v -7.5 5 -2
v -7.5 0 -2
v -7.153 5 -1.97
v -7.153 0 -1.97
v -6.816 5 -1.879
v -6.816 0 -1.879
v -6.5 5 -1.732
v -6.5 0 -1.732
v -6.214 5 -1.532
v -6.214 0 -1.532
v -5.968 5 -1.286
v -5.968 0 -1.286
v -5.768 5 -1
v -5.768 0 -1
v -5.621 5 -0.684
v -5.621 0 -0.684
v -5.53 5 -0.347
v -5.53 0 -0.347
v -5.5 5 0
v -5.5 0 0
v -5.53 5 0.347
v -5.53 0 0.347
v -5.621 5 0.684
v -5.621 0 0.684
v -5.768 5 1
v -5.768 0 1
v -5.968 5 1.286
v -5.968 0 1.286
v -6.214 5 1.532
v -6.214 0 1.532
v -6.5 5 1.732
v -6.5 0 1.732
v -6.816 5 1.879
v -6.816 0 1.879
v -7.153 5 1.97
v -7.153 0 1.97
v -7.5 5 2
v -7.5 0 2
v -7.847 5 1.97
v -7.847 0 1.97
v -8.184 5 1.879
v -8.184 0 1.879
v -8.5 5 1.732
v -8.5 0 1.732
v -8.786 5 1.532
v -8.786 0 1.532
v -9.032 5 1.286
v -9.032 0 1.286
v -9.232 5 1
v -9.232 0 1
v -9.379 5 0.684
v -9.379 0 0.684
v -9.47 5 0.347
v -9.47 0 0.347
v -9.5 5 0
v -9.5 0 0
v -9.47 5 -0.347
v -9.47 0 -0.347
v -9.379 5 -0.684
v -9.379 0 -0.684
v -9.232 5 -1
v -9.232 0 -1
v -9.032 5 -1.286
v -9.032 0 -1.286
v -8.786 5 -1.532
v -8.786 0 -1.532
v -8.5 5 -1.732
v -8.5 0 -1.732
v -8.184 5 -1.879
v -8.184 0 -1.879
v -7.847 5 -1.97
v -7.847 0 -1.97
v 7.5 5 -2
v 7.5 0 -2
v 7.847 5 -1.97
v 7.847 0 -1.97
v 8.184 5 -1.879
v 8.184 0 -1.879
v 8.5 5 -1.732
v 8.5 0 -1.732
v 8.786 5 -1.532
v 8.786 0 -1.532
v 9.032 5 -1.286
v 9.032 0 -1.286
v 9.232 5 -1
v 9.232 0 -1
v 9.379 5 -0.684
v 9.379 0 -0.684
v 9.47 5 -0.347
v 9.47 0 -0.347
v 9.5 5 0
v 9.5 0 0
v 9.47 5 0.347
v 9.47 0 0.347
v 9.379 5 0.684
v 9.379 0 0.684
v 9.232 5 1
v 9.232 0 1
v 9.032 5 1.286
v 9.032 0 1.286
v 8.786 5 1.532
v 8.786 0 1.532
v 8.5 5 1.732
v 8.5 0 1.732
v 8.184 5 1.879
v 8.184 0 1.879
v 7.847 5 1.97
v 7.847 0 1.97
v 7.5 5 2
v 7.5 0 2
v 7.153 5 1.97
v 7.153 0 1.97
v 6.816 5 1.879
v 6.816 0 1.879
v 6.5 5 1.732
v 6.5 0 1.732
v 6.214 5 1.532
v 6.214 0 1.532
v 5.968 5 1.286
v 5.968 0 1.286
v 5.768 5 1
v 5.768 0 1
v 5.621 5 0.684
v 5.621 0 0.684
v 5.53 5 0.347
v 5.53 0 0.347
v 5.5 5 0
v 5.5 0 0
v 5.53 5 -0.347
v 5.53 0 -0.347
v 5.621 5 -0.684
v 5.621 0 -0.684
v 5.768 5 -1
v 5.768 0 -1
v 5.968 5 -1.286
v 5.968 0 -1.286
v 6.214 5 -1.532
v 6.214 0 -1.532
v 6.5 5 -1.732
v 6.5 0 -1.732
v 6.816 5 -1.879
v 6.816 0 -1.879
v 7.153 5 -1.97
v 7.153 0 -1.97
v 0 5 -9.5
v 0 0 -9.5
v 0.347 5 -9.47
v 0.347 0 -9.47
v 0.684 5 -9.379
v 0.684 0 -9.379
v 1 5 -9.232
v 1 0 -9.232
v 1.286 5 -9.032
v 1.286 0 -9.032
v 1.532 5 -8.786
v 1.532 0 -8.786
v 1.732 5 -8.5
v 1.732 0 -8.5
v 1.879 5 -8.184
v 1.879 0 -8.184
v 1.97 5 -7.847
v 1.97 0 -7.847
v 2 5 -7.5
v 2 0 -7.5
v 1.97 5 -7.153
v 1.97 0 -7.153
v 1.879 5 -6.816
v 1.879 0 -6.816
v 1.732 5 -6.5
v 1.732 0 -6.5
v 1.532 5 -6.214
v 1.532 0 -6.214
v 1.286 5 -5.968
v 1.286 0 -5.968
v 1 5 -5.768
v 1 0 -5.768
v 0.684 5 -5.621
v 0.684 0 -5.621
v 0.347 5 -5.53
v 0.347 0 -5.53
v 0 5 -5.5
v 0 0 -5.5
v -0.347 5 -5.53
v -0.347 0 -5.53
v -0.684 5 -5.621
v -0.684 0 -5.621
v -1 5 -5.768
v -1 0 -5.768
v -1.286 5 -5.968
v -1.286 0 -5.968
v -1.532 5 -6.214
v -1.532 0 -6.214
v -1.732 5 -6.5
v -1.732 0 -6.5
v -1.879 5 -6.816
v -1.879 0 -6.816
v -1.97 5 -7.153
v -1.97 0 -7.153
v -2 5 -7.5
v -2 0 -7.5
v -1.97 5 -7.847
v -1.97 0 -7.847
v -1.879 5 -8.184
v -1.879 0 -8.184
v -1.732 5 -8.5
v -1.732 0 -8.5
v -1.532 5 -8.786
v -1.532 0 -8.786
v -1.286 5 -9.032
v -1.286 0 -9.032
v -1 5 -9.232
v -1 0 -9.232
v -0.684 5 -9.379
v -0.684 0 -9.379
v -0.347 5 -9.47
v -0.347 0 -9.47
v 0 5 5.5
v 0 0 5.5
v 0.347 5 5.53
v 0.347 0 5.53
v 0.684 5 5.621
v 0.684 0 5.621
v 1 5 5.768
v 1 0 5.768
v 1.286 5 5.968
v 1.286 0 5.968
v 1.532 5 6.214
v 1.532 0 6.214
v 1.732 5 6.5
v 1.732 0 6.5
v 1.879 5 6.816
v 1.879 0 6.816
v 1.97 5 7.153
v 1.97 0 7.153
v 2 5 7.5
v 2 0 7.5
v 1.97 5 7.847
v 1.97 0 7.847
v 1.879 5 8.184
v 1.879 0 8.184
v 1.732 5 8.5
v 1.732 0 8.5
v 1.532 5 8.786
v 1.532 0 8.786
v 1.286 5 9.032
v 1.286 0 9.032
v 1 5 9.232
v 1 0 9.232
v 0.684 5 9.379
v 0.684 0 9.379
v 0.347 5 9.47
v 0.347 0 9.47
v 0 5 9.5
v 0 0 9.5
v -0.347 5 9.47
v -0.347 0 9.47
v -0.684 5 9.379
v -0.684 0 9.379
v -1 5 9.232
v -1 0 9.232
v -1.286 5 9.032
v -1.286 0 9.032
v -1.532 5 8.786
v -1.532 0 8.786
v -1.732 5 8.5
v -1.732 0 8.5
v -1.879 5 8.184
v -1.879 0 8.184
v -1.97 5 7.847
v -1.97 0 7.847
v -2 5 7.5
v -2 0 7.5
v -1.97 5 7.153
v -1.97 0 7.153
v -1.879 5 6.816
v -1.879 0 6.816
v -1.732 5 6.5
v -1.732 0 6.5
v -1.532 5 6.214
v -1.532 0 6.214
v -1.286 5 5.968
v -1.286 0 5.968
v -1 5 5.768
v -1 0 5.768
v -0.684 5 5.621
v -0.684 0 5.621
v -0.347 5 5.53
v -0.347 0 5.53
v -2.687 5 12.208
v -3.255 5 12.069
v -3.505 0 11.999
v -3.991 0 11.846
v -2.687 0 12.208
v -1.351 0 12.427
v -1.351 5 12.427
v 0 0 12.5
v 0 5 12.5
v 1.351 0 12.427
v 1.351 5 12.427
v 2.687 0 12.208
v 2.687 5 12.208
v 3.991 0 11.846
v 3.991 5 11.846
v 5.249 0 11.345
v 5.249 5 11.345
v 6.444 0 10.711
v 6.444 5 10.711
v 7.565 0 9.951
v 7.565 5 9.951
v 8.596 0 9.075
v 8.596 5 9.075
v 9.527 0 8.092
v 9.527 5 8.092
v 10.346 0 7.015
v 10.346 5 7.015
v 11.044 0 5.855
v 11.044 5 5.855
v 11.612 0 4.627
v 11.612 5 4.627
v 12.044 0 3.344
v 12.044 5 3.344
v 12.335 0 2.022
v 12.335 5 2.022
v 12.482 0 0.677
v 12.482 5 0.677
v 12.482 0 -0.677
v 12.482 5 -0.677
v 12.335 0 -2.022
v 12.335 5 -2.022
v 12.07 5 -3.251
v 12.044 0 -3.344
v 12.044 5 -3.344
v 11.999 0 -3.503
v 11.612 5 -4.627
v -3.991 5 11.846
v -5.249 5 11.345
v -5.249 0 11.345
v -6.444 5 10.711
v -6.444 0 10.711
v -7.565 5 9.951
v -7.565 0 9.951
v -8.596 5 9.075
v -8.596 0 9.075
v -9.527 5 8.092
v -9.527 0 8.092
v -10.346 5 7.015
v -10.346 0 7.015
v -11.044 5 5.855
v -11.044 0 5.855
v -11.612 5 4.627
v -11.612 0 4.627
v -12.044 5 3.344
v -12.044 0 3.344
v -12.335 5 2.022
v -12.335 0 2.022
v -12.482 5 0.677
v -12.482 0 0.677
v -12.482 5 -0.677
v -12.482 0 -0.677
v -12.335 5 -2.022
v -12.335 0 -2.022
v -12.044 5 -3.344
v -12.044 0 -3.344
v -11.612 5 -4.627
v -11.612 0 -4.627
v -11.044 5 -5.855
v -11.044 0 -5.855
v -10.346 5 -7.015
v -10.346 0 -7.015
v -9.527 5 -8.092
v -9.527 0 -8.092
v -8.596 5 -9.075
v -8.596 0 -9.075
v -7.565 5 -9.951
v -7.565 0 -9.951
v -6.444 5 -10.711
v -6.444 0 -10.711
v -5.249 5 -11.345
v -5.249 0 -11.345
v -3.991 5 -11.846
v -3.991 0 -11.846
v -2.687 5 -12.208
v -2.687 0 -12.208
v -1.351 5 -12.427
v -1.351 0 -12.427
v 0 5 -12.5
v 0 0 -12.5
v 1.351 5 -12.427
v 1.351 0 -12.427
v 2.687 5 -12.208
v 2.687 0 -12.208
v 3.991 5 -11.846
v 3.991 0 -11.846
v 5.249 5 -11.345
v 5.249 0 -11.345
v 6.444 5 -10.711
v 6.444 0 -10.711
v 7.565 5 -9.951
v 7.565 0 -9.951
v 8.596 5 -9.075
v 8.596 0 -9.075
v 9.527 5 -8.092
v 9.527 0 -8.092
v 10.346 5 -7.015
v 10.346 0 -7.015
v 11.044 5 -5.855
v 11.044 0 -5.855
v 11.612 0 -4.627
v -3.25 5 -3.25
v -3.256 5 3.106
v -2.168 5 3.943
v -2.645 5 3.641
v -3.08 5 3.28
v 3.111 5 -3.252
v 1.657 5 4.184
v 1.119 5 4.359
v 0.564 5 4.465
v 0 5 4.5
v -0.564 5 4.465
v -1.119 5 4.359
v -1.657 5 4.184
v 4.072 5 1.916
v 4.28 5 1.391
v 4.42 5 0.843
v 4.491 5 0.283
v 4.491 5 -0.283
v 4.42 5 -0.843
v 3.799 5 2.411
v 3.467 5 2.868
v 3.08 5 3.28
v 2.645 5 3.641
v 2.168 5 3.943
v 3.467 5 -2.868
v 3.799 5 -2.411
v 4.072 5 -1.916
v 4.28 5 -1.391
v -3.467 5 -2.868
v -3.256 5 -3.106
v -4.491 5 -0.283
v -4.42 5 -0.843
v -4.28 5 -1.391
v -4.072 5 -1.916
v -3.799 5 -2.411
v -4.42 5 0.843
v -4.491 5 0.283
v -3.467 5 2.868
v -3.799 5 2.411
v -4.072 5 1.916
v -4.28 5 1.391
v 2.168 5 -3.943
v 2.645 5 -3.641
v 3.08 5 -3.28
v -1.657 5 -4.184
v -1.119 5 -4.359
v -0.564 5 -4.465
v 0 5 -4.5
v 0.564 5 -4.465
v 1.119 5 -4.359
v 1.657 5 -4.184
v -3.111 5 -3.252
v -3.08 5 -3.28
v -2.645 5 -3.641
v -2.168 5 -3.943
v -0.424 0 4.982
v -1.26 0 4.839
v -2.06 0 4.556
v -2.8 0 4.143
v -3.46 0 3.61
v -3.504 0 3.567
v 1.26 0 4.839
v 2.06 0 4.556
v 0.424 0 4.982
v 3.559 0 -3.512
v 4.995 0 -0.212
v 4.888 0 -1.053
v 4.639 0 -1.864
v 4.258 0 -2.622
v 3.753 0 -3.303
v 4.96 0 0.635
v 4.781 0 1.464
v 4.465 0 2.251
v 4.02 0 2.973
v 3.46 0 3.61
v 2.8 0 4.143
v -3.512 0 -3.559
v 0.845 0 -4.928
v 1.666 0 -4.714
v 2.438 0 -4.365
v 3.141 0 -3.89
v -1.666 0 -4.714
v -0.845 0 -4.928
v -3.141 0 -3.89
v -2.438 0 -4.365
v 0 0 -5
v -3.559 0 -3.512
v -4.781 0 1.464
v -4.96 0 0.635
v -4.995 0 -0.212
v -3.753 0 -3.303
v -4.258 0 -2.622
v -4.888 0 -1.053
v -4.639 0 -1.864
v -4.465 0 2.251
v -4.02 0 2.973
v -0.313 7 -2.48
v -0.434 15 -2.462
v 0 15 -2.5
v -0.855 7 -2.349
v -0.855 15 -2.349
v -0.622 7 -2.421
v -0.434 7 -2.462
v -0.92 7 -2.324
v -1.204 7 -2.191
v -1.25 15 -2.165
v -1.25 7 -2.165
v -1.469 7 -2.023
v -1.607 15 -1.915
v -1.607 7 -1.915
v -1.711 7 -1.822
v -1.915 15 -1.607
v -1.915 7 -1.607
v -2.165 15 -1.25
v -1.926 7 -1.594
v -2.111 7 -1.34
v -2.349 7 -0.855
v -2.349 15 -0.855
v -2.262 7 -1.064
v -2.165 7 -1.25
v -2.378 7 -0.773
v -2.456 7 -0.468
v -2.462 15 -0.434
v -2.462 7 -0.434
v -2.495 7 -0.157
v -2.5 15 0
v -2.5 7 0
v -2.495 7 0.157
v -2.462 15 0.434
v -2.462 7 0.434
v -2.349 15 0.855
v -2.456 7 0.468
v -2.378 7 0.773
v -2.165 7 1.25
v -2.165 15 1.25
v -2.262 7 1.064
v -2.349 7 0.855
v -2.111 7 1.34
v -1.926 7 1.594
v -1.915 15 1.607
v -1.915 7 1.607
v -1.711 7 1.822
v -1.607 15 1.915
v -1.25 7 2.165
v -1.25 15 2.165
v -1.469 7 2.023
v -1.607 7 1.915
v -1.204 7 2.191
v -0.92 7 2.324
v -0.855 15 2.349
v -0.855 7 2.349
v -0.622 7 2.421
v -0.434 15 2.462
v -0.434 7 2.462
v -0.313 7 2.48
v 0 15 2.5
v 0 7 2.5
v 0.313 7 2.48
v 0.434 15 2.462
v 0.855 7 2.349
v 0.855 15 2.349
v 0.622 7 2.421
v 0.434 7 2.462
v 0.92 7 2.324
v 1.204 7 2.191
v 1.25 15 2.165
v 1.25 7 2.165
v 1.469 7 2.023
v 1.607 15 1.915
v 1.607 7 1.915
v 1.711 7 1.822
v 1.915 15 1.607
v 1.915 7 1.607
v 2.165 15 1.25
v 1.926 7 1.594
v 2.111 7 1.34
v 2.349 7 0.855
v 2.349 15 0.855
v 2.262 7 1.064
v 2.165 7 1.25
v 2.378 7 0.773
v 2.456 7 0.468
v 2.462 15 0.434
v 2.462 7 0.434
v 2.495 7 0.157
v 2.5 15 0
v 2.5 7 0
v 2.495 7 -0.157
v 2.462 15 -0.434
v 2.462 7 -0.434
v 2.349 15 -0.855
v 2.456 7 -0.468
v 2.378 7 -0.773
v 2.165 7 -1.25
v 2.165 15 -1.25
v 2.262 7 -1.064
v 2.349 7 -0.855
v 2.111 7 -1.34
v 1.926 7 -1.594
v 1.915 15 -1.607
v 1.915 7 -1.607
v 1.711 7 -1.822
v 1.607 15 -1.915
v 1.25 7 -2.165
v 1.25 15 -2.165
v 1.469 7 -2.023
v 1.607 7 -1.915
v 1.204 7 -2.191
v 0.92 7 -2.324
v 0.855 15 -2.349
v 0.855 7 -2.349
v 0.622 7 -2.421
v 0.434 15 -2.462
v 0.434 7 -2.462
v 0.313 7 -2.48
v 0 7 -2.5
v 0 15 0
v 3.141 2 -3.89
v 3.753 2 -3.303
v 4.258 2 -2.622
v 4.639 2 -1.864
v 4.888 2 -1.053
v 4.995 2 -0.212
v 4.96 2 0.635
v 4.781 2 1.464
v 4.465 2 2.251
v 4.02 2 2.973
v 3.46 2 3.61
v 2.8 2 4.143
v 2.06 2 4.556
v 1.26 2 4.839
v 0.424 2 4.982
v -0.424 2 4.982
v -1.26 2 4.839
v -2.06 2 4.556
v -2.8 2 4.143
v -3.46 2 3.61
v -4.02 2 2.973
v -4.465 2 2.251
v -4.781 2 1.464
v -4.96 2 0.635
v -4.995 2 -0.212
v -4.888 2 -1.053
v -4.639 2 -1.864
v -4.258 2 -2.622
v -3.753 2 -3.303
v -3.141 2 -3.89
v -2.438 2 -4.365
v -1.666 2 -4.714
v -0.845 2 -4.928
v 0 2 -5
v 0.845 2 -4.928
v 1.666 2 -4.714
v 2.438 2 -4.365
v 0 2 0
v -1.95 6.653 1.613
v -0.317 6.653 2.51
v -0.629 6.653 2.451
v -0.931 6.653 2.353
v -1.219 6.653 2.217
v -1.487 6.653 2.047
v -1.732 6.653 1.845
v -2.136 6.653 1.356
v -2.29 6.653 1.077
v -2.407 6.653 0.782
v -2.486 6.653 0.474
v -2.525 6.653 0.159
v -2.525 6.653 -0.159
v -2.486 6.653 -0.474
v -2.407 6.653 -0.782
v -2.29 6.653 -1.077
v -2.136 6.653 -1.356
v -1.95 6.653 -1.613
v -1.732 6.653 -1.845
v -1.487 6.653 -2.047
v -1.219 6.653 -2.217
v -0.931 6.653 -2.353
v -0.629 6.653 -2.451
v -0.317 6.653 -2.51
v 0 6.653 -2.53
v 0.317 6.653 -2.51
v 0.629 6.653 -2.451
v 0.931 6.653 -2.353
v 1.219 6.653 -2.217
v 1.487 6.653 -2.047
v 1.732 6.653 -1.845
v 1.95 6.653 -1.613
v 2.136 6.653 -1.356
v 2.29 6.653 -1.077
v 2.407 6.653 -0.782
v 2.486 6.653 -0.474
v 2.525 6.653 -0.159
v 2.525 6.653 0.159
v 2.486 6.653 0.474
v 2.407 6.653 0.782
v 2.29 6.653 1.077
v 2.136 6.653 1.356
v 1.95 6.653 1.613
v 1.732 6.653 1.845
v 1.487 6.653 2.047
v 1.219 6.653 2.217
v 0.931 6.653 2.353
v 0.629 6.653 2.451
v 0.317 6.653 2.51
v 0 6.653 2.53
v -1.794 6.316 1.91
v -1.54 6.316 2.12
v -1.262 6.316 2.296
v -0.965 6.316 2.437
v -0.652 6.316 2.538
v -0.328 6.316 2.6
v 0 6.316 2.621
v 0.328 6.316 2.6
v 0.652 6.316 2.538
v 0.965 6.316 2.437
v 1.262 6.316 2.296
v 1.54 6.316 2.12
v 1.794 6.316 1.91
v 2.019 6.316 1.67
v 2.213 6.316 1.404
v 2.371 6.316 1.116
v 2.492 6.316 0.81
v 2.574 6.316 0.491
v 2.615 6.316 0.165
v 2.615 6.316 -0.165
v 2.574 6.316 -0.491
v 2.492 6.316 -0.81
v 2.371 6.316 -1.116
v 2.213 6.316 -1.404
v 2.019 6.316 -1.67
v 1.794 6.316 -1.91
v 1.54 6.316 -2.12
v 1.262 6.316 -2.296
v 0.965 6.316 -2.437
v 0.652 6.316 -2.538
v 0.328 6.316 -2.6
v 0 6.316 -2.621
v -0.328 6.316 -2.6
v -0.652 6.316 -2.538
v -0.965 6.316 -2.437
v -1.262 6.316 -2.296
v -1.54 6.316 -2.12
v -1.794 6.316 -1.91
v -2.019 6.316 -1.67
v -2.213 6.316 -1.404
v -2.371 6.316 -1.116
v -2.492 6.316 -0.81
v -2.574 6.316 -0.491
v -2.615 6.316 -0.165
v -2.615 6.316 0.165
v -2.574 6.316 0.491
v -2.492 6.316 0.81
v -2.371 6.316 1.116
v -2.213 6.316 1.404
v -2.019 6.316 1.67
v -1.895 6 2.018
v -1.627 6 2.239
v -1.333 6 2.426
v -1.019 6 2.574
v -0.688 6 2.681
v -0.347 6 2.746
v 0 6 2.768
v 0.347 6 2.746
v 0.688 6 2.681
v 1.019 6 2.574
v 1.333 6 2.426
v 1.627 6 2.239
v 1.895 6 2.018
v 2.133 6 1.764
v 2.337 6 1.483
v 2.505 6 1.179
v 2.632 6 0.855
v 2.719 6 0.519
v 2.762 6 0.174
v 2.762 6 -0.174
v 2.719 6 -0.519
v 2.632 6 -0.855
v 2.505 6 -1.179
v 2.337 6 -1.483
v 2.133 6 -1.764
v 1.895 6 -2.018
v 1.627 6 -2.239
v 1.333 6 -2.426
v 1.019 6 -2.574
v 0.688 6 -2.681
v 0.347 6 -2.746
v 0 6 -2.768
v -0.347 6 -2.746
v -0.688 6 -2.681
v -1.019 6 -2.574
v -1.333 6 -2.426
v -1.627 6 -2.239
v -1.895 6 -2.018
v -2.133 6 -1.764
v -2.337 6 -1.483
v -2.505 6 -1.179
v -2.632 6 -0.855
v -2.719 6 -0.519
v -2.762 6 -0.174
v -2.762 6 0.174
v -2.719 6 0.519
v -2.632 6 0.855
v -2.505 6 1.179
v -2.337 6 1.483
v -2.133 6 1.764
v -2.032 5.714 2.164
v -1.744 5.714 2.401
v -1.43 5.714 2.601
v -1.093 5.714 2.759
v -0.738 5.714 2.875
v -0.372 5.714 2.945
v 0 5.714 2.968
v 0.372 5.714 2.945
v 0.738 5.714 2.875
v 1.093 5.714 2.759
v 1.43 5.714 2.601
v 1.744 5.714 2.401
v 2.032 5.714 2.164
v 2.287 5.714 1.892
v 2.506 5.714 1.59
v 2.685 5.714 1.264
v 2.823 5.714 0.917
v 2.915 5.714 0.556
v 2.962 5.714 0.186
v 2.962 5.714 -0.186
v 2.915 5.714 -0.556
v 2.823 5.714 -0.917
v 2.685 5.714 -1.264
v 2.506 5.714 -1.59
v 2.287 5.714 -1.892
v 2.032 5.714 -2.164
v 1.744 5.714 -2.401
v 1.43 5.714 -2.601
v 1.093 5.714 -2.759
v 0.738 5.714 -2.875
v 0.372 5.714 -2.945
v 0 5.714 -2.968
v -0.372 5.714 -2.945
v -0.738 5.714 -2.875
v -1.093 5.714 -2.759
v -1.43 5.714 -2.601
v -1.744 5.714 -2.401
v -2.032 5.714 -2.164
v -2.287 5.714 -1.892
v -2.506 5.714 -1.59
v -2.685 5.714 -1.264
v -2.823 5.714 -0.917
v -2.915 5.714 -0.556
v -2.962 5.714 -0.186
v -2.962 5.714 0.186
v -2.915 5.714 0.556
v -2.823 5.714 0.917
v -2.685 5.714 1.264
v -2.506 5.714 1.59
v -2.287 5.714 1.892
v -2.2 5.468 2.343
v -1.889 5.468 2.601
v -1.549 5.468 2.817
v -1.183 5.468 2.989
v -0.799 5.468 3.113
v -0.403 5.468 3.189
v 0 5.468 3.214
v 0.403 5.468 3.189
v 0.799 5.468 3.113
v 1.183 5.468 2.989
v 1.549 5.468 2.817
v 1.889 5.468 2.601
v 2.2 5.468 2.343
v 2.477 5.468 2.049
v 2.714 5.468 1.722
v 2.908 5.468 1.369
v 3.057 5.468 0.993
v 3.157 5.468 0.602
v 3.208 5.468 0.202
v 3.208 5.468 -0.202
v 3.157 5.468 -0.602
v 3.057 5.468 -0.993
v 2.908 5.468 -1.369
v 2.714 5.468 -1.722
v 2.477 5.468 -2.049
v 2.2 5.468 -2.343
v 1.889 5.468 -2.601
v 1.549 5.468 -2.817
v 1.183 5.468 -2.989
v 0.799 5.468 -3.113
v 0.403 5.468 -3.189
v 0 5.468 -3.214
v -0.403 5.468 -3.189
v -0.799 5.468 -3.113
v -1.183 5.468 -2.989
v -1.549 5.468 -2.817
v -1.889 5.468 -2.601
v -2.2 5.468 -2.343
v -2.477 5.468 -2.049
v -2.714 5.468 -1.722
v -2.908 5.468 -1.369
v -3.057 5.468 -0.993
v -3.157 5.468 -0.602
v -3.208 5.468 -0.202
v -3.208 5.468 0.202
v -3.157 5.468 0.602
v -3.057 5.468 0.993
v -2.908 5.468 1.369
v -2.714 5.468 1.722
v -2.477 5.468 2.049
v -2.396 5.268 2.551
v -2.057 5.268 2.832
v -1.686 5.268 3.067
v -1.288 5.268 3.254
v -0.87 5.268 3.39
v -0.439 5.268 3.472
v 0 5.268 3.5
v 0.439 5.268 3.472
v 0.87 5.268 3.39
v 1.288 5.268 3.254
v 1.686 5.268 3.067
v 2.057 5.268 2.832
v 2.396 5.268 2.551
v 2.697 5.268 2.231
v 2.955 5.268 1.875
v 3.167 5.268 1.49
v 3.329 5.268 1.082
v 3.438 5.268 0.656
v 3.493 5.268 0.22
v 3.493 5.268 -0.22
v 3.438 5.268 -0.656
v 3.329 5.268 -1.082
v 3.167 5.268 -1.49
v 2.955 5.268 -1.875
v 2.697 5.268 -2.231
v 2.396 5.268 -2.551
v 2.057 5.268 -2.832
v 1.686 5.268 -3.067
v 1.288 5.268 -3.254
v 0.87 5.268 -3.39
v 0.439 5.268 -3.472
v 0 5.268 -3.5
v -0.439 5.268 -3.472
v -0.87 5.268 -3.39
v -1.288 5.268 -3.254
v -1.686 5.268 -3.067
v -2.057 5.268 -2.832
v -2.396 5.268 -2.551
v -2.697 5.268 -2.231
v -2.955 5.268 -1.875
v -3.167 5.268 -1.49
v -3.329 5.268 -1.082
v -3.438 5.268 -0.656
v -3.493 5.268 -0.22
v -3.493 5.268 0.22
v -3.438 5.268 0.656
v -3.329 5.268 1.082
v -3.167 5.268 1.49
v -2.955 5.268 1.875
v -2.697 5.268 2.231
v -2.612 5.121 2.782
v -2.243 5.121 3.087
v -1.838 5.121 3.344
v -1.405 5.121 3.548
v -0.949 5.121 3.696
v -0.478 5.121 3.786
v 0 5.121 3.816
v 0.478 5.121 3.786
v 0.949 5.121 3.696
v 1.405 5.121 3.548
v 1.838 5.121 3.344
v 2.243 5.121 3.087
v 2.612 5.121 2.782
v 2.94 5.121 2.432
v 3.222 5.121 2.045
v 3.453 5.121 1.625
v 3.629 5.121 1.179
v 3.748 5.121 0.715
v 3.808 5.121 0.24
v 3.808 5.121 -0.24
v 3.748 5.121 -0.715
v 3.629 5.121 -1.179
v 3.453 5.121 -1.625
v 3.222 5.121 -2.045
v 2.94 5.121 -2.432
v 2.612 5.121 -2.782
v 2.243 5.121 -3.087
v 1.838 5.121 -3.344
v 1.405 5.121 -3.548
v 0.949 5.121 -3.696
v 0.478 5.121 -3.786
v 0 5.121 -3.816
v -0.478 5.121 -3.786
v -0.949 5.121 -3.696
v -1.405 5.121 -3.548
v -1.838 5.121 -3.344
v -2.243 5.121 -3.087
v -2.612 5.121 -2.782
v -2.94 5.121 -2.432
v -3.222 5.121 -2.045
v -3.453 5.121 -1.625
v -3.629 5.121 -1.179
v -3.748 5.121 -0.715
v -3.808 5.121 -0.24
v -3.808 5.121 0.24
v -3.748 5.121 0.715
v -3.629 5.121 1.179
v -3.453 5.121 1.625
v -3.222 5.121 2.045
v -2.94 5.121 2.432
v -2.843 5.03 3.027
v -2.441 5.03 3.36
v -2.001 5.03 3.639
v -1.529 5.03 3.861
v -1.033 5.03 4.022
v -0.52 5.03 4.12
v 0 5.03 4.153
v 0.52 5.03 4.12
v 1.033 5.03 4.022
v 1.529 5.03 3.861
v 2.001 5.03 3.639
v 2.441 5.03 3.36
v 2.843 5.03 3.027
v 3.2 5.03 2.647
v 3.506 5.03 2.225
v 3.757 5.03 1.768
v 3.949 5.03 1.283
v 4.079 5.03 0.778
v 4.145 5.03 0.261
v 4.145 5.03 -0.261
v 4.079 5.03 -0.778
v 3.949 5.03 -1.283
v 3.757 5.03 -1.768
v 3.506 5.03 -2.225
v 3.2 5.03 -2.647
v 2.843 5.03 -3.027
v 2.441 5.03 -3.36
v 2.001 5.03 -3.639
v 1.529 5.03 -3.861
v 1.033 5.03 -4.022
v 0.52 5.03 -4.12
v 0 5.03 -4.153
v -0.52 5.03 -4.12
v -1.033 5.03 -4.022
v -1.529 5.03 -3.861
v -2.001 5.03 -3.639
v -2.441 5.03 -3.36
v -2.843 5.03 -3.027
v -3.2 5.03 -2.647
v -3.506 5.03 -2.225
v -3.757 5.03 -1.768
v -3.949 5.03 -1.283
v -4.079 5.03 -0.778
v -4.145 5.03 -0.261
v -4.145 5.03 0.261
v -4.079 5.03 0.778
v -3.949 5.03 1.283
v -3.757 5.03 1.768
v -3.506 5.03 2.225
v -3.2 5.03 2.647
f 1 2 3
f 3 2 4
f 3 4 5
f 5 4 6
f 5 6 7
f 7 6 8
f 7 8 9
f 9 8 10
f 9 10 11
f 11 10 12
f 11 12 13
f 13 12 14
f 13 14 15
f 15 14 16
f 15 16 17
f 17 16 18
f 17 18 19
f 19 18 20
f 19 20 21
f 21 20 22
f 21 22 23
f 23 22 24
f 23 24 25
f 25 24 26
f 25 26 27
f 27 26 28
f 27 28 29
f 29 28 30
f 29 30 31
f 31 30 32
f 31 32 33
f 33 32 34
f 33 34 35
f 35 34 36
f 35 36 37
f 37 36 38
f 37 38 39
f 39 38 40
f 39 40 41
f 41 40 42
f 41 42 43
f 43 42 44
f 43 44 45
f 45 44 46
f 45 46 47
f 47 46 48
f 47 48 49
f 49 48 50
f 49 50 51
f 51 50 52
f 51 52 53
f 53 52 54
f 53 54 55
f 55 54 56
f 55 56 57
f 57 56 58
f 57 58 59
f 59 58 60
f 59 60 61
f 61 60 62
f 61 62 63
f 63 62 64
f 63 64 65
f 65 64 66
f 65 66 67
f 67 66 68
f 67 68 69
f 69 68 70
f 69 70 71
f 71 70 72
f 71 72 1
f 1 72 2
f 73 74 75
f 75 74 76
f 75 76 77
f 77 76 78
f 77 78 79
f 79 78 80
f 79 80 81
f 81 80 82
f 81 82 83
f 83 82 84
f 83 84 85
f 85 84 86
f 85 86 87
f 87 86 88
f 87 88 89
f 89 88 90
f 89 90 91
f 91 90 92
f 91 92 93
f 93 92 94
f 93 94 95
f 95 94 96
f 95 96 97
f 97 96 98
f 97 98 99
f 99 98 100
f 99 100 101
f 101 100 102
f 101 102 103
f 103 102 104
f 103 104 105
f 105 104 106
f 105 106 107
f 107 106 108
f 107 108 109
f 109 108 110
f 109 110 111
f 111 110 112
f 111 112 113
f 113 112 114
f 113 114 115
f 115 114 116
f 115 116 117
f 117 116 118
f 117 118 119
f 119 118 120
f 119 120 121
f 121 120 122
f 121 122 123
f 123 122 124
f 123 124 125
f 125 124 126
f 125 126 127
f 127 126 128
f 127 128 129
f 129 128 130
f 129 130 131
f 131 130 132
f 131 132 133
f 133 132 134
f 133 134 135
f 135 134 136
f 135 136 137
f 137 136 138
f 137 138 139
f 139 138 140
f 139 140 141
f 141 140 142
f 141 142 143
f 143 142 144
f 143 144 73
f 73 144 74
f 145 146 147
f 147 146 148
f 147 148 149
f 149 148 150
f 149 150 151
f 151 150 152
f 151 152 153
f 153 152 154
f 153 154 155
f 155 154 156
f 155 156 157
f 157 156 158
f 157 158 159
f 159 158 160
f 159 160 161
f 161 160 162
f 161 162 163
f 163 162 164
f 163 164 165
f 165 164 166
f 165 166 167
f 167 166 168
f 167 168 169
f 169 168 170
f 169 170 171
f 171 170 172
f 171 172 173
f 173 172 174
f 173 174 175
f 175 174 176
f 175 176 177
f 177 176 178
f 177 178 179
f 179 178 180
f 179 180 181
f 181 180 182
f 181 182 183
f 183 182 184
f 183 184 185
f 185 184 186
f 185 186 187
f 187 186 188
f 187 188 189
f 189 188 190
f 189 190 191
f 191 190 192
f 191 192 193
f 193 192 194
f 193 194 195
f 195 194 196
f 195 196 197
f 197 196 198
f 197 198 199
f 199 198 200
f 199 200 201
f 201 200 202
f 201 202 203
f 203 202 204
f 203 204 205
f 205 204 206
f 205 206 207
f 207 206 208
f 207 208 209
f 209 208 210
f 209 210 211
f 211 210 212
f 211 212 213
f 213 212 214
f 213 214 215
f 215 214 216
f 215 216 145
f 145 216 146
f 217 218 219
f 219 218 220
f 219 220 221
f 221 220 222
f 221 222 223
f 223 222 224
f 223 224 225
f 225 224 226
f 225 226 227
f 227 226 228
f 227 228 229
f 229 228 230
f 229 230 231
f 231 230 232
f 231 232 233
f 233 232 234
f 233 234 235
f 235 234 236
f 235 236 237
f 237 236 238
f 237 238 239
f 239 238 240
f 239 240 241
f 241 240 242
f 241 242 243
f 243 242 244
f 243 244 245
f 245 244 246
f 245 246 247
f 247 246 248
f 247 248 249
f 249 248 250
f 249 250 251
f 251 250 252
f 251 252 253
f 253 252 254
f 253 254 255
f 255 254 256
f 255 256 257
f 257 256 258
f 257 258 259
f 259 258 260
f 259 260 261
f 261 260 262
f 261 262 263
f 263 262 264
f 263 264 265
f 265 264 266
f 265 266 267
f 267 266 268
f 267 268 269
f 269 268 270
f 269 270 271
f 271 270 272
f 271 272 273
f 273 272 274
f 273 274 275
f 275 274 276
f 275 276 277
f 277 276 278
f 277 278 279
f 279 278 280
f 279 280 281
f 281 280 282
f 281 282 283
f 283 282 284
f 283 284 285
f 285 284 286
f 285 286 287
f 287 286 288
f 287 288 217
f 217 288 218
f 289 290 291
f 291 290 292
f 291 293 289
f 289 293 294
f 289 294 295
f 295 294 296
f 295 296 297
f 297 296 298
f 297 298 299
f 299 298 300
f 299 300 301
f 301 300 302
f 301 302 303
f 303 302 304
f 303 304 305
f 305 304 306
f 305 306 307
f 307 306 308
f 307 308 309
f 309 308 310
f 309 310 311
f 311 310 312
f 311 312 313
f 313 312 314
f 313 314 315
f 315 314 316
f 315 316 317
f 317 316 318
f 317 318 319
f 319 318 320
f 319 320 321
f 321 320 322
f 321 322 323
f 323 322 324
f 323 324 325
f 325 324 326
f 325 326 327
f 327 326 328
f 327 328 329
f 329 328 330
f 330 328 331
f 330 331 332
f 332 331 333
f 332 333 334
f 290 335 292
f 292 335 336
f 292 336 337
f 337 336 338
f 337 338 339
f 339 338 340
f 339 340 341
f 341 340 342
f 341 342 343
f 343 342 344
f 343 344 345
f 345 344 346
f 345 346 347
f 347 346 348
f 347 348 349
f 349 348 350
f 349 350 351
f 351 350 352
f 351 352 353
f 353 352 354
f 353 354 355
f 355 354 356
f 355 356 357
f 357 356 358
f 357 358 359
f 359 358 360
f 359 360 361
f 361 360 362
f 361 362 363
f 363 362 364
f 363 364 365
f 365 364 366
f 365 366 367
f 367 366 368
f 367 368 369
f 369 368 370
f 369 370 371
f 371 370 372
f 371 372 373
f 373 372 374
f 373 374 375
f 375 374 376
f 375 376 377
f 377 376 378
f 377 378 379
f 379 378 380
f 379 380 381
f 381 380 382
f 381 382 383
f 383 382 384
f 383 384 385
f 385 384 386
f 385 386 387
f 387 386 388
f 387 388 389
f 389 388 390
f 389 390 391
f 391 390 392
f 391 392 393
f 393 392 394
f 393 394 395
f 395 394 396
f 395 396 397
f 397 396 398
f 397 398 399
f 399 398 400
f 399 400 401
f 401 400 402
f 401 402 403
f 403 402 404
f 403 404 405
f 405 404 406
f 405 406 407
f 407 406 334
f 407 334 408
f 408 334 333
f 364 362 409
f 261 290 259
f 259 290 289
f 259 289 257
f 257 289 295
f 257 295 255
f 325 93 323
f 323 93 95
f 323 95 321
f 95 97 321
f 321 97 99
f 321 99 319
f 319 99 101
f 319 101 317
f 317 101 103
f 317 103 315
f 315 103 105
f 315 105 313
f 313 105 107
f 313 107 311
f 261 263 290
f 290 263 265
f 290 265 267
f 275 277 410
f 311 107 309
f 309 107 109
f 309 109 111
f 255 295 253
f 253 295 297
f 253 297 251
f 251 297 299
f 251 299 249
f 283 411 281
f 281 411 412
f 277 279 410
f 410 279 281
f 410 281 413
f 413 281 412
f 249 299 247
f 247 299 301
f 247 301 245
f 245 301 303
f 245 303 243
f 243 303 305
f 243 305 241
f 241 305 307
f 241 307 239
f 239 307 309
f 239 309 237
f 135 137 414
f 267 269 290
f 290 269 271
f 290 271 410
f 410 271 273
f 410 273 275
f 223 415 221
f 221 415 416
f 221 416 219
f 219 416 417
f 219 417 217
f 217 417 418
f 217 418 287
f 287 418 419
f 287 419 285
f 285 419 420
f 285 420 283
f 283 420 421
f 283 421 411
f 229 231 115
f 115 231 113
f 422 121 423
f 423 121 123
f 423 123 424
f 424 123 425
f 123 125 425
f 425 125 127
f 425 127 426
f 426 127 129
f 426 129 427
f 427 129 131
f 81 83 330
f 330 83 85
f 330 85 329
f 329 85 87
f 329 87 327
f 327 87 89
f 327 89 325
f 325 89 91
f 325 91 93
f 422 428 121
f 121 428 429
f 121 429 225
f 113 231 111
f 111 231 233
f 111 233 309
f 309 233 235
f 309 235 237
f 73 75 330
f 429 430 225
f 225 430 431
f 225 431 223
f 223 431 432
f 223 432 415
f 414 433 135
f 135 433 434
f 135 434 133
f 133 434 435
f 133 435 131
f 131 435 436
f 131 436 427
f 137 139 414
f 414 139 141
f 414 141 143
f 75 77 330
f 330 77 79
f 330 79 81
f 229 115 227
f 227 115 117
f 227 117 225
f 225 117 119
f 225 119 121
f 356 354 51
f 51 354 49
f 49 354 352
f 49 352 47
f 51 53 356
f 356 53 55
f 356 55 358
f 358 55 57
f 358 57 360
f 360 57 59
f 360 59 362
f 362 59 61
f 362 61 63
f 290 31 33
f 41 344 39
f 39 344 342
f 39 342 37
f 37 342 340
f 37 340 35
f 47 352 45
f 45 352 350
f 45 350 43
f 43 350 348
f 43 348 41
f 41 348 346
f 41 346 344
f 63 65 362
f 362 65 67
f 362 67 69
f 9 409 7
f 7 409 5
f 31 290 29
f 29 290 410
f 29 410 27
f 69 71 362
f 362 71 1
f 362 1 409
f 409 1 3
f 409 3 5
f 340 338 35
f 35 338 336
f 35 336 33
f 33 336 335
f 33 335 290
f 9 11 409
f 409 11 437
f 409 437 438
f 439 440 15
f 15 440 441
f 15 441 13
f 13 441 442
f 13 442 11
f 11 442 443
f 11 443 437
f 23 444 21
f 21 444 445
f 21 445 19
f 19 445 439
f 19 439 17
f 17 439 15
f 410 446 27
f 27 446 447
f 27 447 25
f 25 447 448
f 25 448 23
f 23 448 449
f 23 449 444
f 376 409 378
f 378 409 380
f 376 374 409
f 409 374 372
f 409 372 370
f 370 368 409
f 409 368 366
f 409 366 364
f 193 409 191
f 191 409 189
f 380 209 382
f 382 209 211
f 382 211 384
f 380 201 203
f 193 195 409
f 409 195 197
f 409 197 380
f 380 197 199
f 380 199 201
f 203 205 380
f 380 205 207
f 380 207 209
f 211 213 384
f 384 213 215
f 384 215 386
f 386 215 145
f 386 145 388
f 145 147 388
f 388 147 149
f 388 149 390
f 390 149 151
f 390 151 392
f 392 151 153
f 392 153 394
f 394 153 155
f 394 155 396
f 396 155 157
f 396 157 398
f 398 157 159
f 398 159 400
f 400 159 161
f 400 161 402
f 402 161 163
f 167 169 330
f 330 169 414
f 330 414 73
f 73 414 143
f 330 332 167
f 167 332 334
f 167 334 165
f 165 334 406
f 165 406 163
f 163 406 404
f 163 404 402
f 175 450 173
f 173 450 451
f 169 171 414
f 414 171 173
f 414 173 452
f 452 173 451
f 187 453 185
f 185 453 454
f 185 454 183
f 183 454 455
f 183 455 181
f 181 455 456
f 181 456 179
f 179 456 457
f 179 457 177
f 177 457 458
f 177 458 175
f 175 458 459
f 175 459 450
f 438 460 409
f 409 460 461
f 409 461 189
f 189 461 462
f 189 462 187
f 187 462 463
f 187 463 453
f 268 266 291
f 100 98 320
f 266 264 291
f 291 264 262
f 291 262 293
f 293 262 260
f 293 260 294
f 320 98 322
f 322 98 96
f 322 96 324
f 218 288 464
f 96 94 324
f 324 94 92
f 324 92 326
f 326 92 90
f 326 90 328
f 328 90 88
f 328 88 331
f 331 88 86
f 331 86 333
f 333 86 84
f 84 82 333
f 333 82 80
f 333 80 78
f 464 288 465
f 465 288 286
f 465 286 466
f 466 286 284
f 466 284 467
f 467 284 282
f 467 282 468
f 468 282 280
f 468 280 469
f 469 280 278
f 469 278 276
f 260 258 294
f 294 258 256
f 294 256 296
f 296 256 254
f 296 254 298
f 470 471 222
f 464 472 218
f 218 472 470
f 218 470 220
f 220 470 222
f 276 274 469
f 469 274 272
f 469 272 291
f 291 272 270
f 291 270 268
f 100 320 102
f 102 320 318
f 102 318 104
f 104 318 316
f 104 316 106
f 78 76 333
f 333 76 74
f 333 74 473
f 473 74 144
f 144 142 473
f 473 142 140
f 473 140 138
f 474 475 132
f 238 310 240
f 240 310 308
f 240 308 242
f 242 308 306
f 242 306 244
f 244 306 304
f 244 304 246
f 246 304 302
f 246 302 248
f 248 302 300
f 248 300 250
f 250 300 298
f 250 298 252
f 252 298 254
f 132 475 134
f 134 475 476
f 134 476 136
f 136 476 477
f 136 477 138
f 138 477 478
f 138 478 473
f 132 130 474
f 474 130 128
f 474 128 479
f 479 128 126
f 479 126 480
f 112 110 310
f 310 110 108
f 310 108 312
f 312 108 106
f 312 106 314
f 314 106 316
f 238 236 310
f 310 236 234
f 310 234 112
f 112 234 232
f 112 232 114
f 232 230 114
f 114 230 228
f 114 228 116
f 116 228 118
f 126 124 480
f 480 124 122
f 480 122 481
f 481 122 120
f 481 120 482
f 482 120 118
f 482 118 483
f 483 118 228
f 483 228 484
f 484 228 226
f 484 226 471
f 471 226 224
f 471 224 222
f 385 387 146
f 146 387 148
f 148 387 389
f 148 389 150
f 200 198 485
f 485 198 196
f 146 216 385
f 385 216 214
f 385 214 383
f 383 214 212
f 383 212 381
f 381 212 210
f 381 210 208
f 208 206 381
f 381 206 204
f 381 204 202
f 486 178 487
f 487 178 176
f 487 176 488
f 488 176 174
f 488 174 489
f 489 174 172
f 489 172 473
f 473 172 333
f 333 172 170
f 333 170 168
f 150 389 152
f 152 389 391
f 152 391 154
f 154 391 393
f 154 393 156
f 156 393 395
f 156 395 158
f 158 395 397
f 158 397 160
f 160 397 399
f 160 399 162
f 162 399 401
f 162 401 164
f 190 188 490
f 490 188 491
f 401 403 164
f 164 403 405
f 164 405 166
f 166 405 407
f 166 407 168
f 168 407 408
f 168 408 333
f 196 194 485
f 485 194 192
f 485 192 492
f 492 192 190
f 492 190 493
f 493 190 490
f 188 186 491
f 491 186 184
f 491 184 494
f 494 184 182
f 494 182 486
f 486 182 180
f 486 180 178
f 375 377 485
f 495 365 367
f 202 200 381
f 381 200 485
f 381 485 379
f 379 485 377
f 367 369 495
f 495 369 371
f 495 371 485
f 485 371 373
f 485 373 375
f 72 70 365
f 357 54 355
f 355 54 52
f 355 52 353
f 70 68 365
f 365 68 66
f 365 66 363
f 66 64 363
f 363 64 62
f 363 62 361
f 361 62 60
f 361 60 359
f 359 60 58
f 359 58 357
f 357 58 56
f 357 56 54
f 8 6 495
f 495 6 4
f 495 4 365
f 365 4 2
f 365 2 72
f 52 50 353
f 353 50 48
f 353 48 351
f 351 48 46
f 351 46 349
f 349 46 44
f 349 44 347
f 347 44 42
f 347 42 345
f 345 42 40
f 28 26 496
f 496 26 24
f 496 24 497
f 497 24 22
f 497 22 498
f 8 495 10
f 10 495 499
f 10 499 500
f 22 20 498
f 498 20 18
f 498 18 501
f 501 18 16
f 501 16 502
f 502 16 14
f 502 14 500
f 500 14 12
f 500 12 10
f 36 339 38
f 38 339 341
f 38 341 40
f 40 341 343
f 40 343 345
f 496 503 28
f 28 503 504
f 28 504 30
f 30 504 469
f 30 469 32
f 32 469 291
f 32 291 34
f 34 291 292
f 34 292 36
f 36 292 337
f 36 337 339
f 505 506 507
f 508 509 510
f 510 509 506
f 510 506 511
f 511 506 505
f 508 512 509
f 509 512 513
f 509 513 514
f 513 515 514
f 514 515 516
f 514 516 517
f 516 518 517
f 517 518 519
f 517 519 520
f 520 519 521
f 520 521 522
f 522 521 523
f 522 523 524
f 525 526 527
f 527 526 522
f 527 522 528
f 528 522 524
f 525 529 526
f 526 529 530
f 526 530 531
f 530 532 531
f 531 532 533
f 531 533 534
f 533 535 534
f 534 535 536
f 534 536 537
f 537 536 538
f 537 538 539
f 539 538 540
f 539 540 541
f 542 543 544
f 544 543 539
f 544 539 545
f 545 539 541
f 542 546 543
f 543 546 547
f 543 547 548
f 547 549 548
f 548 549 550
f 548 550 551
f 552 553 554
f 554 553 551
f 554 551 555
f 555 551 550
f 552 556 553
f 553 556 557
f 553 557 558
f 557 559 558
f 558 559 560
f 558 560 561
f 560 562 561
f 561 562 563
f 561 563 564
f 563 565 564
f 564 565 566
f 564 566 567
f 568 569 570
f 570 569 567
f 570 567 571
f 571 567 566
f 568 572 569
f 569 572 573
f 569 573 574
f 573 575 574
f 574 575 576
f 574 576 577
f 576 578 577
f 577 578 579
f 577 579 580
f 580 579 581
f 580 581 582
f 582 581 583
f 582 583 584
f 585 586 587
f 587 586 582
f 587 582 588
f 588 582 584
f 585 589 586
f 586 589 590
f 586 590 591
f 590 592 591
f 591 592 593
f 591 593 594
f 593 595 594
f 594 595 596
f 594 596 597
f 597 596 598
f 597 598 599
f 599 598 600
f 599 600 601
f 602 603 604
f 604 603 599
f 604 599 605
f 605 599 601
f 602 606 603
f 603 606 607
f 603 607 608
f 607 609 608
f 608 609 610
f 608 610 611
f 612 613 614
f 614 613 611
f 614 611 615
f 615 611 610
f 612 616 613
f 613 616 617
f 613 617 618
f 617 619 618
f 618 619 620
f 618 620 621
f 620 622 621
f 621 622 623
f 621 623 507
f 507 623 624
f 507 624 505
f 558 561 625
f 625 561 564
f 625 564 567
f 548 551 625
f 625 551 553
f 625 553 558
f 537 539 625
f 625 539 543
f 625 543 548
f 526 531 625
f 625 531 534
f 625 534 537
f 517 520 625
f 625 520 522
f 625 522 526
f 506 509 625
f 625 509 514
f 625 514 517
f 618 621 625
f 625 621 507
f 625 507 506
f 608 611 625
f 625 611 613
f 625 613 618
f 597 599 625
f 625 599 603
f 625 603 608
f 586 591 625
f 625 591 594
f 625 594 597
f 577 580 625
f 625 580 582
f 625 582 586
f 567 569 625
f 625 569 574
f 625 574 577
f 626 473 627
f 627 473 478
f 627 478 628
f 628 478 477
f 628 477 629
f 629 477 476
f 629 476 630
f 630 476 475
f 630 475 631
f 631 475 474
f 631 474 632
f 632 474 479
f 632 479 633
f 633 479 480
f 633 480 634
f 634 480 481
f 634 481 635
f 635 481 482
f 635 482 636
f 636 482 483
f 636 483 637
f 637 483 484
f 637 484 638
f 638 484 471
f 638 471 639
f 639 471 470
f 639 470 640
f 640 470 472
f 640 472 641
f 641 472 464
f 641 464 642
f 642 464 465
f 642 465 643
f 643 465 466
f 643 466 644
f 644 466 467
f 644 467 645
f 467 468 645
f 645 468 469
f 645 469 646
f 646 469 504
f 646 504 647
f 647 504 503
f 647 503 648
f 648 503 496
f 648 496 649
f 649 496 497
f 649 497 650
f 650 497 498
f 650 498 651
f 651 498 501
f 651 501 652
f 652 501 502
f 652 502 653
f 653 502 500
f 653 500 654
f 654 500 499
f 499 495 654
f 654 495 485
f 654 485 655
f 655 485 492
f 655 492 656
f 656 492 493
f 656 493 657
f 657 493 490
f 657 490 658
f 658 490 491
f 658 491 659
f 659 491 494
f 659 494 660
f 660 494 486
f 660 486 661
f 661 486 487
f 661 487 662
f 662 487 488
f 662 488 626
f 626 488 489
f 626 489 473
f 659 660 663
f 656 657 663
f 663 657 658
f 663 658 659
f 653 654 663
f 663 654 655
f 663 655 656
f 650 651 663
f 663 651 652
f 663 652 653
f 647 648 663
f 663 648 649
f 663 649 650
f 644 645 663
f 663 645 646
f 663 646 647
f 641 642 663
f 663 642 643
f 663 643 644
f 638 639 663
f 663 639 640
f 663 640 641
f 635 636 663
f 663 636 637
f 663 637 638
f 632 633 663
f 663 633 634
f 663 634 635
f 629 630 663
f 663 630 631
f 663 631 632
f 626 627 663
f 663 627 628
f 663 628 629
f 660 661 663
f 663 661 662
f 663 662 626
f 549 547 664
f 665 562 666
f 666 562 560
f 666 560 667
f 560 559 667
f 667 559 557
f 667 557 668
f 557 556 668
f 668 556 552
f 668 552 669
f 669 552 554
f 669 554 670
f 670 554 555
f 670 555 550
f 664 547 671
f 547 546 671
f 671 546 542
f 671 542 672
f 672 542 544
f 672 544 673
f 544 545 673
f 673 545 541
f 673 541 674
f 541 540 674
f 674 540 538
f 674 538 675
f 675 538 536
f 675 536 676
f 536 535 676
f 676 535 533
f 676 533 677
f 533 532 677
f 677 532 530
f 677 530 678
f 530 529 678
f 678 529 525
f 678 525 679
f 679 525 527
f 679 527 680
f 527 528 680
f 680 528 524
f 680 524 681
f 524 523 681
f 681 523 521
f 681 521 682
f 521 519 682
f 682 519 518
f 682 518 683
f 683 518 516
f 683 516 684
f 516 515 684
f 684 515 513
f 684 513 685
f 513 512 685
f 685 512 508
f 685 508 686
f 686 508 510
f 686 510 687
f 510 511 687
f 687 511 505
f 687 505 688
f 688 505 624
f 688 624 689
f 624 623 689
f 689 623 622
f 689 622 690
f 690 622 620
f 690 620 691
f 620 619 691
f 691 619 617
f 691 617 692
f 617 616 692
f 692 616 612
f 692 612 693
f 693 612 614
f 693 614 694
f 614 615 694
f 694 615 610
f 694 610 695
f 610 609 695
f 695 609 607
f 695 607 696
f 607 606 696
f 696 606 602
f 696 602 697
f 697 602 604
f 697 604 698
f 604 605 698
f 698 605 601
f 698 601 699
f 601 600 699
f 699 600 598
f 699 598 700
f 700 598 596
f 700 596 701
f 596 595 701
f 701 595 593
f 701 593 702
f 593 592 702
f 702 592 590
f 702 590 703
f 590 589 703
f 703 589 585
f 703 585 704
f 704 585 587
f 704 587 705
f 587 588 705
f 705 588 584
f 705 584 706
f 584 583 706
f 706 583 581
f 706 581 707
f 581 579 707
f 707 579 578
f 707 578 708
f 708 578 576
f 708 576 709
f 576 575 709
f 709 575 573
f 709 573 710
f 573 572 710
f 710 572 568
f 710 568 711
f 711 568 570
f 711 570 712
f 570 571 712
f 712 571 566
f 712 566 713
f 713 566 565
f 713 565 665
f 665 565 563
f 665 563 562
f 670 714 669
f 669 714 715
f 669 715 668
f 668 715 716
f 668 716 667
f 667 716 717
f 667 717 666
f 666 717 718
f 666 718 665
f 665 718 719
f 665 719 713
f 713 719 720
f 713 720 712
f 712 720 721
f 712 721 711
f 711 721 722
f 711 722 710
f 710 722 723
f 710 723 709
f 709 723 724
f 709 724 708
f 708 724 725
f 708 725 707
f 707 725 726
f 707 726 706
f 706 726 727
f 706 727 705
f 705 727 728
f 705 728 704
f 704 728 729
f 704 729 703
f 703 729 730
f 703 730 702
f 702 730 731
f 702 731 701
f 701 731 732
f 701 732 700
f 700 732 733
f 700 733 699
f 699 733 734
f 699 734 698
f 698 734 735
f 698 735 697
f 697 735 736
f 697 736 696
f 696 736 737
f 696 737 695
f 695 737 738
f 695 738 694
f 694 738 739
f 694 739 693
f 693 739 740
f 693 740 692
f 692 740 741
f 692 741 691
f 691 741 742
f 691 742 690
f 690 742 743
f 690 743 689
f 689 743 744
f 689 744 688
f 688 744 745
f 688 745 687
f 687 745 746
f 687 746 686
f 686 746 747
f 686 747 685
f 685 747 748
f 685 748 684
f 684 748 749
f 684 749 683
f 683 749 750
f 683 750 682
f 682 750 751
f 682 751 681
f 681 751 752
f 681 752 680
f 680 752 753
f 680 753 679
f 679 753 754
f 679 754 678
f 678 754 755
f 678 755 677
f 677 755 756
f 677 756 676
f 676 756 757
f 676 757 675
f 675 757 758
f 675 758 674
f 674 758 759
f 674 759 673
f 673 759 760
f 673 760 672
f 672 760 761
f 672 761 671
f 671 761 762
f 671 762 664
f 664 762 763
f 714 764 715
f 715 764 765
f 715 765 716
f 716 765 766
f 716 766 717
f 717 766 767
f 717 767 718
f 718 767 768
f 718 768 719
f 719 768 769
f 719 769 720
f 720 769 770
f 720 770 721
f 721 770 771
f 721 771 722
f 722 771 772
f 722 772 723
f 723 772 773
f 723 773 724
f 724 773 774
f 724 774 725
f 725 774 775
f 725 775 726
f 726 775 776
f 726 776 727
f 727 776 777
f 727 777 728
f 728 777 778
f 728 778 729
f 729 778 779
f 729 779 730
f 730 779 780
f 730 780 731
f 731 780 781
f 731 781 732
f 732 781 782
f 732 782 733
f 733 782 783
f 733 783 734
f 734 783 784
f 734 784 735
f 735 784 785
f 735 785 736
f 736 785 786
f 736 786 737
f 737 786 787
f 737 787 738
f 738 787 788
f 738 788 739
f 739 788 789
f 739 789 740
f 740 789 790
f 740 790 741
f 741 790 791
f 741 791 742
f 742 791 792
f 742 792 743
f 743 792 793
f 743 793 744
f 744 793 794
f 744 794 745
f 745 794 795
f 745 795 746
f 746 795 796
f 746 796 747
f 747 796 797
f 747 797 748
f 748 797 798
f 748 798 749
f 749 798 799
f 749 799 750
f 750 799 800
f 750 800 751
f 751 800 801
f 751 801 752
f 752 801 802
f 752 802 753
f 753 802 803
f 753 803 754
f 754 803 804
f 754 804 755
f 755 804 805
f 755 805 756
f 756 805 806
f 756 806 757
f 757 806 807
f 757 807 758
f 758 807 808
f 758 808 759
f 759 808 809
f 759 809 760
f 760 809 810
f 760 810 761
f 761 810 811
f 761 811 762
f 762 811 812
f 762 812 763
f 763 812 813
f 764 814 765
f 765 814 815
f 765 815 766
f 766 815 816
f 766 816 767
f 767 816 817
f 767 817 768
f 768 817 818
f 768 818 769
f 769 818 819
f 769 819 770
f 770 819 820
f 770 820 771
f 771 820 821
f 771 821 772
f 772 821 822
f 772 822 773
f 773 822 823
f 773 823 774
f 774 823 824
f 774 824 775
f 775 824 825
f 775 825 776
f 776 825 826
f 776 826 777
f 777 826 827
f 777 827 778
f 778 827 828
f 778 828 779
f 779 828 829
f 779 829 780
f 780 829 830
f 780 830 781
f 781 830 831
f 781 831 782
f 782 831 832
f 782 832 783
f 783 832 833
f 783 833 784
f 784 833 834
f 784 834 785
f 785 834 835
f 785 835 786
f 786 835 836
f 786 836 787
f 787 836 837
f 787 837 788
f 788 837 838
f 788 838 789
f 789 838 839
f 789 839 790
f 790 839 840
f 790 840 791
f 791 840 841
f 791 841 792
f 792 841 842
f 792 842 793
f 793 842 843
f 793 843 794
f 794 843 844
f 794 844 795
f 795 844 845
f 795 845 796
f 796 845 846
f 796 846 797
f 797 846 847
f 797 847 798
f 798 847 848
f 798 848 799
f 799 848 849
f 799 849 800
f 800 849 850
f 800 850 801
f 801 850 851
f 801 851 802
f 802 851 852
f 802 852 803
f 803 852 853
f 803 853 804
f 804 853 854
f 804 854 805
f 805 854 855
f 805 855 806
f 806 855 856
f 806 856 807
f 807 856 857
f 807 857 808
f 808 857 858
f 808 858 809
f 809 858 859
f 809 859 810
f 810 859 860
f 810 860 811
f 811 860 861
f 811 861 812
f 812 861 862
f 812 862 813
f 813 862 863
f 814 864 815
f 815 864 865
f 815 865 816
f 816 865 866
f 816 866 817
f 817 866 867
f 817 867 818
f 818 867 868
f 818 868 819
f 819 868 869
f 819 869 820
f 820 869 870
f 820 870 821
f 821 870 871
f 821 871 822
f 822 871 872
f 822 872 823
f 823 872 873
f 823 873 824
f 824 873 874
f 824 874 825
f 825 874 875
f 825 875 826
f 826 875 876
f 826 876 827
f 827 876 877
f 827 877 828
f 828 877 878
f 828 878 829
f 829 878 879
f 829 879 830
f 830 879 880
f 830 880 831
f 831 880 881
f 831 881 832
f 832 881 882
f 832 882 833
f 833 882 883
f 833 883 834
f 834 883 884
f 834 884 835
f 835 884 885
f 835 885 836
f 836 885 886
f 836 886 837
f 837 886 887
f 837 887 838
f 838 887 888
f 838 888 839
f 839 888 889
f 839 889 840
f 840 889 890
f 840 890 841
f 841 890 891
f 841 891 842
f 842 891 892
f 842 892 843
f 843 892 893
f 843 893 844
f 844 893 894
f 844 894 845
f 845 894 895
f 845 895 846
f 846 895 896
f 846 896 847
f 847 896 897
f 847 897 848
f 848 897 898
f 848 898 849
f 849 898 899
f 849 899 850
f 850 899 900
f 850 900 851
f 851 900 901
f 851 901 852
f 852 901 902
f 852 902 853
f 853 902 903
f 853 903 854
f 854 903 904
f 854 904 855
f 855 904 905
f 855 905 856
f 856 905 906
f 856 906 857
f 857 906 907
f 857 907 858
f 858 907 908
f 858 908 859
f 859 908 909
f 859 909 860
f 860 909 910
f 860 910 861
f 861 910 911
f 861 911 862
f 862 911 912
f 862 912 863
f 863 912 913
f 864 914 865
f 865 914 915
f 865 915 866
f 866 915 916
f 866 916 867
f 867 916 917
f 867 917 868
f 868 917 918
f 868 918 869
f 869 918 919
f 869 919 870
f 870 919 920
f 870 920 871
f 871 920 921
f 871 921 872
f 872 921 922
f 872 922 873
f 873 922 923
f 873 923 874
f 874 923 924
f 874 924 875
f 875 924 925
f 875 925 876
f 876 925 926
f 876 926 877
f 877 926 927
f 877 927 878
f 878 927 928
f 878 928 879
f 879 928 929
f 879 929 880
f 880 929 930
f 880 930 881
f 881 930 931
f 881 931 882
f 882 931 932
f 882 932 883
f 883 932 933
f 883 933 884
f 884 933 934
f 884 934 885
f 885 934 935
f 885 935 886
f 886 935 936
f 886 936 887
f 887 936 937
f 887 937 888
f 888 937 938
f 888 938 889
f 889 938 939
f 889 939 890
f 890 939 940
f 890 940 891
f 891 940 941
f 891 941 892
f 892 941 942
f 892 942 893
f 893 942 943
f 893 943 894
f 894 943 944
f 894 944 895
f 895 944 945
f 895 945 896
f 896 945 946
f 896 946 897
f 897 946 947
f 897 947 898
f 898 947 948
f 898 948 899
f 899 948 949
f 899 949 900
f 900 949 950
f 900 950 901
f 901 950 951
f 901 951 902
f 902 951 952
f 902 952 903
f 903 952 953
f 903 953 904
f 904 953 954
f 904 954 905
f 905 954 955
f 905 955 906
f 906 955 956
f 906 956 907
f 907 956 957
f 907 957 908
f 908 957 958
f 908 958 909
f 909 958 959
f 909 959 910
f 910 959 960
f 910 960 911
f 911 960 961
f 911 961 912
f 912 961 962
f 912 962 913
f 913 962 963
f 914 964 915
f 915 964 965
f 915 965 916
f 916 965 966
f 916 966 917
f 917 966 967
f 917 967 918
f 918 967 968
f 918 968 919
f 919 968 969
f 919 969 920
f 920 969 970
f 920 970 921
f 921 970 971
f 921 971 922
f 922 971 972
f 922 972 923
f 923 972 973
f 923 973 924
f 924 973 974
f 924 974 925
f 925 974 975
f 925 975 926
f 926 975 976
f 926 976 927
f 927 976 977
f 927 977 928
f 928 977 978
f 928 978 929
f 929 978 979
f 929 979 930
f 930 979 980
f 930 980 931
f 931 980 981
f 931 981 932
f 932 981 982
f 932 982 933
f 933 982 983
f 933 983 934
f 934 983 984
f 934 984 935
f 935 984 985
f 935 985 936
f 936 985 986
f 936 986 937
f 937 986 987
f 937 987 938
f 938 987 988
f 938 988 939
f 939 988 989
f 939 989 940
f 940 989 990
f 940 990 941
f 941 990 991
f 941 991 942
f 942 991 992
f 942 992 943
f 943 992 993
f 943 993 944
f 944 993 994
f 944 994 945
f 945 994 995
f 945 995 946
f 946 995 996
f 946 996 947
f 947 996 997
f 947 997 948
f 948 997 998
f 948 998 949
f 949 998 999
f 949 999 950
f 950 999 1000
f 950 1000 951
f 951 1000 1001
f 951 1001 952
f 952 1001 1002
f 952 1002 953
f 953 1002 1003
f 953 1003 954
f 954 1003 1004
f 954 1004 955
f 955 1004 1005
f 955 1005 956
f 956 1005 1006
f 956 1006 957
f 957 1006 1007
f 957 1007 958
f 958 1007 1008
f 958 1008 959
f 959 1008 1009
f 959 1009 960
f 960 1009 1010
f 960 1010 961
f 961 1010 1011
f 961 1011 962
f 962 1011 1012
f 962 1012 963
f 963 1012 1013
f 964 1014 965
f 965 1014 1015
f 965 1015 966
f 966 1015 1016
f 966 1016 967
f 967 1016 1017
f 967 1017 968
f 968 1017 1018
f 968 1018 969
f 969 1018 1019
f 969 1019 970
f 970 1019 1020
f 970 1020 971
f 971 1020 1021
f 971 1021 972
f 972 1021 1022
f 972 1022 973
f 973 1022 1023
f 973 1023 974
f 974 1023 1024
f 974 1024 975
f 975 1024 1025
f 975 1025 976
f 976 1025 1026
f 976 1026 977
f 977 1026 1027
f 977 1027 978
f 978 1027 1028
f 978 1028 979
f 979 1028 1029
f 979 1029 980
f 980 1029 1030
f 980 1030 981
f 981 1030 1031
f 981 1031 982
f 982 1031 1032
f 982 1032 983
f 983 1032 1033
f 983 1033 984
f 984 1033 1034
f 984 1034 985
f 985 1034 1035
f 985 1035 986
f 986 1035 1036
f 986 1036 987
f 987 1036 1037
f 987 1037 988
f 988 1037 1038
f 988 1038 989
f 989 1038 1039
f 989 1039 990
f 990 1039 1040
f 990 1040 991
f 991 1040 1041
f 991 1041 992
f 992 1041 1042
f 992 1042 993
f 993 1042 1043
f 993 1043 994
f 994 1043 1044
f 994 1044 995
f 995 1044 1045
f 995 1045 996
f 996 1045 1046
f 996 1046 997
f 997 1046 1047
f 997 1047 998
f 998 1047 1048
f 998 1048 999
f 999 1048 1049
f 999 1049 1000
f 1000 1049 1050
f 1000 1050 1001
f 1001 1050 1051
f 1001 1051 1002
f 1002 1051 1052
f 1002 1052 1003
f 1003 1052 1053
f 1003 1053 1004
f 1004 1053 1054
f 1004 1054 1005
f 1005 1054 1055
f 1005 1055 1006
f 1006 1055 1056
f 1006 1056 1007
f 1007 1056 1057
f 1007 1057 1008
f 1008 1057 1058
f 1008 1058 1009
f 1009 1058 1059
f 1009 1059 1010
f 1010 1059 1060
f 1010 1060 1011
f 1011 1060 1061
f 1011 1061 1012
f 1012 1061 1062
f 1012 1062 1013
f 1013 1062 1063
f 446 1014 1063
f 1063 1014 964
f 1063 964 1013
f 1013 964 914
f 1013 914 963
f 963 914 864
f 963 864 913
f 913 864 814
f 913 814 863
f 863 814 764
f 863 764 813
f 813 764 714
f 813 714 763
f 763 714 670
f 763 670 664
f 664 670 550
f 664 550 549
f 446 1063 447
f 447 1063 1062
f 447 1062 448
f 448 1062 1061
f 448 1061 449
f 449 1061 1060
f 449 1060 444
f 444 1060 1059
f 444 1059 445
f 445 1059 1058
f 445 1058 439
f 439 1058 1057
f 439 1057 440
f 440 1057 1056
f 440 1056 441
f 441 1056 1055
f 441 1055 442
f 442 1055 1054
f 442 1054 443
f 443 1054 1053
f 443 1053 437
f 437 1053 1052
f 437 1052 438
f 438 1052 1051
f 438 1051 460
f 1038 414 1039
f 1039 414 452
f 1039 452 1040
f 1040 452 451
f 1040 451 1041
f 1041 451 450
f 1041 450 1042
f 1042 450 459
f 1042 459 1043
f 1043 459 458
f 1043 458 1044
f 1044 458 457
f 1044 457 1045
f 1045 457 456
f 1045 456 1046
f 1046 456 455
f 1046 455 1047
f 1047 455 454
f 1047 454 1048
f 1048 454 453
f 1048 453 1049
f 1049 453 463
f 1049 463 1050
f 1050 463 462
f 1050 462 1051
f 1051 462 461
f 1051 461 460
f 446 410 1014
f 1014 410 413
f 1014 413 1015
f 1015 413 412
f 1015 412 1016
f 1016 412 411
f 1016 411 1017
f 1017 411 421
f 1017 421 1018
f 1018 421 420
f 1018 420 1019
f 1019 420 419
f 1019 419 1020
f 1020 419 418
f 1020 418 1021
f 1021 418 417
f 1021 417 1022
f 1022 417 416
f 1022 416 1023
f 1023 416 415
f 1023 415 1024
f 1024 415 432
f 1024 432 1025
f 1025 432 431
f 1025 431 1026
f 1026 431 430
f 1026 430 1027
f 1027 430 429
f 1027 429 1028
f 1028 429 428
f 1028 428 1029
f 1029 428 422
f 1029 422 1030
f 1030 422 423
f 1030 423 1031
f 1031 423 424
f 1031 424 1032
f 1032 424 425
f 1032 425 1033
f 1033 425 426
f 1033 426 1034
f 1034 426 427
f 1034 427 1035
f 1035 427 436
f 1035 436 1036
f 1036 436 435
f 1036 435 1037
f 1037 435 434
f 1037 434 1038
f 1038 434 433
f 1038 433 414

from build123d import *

# Parameters (mm, degrees)
SKETCH1_R           = 12.5
SKETCH1_R_2         = 2
BOSS_EXTRUDE1_DEPTH = 5
SKETCH2_R           = 2.5
BOSS_EXTRUDE2_DEPTH = 10
SKETCH3_R           = 5
CUT_EXTRUDE1_DEPTH  = 2
FILLET2_R           = 2


with BuildPart() as part:
    # Sketch1 → Boss-Extrude1 (new body)
    with BuildSketch(Plane(origin=(0, 0, 0), x_dir=(1, 0, 0), z_dir=(0, 1, 0))):
        Circle(SKETCH1_R)
        with Locations((-7.5, 0)):
            Circle(SKETCH1_R_2, mode=Mode.SUBTRACT)
        with Locations((0, 7.5)):
            Circle(SKETCH1_R_2, mode=Mode.SUBTRACT)
        with Locations((7.5, 0)):
            Circle(SKETCH1_R_2, mode=Mode.SUBTRACT)
        with Locations((0, -7.5)):
            Circle(SKETCH1_R_2, mode=Mode.SUBTRACT)
    extrude(amount=BOSS_EXTRUDE1_DEPTH)

    # Sketch2 → Boss-Extrude2 (add)
    with BuildSketch(Plane(origin=(0, 5, 0), x_dir=(1, 0, 0), z_dir=(0, 1, 0))):
        Circle(SKETCH2_R)
    extrude(amount=BOSS_EXTRUDE2_DEPTH)

    # Sketch3 → Cut-Extrude1 (cut)
    with BuildSketch(Plane.XZ):
        Circle(SKETCH3_R)
    extrude(amount=-CUT_EXTRUDE1_DEPTH, mode=Mode.SUBTRACT)

    # Fillet2
    fillet2_edges = [part.edges().sort_by_distance(p)[0] for p in [
        (-2.5, 5, 0),
    ]]
    fillet(fillet2_edges, radius=FILLET2_R)


solid = part.part
